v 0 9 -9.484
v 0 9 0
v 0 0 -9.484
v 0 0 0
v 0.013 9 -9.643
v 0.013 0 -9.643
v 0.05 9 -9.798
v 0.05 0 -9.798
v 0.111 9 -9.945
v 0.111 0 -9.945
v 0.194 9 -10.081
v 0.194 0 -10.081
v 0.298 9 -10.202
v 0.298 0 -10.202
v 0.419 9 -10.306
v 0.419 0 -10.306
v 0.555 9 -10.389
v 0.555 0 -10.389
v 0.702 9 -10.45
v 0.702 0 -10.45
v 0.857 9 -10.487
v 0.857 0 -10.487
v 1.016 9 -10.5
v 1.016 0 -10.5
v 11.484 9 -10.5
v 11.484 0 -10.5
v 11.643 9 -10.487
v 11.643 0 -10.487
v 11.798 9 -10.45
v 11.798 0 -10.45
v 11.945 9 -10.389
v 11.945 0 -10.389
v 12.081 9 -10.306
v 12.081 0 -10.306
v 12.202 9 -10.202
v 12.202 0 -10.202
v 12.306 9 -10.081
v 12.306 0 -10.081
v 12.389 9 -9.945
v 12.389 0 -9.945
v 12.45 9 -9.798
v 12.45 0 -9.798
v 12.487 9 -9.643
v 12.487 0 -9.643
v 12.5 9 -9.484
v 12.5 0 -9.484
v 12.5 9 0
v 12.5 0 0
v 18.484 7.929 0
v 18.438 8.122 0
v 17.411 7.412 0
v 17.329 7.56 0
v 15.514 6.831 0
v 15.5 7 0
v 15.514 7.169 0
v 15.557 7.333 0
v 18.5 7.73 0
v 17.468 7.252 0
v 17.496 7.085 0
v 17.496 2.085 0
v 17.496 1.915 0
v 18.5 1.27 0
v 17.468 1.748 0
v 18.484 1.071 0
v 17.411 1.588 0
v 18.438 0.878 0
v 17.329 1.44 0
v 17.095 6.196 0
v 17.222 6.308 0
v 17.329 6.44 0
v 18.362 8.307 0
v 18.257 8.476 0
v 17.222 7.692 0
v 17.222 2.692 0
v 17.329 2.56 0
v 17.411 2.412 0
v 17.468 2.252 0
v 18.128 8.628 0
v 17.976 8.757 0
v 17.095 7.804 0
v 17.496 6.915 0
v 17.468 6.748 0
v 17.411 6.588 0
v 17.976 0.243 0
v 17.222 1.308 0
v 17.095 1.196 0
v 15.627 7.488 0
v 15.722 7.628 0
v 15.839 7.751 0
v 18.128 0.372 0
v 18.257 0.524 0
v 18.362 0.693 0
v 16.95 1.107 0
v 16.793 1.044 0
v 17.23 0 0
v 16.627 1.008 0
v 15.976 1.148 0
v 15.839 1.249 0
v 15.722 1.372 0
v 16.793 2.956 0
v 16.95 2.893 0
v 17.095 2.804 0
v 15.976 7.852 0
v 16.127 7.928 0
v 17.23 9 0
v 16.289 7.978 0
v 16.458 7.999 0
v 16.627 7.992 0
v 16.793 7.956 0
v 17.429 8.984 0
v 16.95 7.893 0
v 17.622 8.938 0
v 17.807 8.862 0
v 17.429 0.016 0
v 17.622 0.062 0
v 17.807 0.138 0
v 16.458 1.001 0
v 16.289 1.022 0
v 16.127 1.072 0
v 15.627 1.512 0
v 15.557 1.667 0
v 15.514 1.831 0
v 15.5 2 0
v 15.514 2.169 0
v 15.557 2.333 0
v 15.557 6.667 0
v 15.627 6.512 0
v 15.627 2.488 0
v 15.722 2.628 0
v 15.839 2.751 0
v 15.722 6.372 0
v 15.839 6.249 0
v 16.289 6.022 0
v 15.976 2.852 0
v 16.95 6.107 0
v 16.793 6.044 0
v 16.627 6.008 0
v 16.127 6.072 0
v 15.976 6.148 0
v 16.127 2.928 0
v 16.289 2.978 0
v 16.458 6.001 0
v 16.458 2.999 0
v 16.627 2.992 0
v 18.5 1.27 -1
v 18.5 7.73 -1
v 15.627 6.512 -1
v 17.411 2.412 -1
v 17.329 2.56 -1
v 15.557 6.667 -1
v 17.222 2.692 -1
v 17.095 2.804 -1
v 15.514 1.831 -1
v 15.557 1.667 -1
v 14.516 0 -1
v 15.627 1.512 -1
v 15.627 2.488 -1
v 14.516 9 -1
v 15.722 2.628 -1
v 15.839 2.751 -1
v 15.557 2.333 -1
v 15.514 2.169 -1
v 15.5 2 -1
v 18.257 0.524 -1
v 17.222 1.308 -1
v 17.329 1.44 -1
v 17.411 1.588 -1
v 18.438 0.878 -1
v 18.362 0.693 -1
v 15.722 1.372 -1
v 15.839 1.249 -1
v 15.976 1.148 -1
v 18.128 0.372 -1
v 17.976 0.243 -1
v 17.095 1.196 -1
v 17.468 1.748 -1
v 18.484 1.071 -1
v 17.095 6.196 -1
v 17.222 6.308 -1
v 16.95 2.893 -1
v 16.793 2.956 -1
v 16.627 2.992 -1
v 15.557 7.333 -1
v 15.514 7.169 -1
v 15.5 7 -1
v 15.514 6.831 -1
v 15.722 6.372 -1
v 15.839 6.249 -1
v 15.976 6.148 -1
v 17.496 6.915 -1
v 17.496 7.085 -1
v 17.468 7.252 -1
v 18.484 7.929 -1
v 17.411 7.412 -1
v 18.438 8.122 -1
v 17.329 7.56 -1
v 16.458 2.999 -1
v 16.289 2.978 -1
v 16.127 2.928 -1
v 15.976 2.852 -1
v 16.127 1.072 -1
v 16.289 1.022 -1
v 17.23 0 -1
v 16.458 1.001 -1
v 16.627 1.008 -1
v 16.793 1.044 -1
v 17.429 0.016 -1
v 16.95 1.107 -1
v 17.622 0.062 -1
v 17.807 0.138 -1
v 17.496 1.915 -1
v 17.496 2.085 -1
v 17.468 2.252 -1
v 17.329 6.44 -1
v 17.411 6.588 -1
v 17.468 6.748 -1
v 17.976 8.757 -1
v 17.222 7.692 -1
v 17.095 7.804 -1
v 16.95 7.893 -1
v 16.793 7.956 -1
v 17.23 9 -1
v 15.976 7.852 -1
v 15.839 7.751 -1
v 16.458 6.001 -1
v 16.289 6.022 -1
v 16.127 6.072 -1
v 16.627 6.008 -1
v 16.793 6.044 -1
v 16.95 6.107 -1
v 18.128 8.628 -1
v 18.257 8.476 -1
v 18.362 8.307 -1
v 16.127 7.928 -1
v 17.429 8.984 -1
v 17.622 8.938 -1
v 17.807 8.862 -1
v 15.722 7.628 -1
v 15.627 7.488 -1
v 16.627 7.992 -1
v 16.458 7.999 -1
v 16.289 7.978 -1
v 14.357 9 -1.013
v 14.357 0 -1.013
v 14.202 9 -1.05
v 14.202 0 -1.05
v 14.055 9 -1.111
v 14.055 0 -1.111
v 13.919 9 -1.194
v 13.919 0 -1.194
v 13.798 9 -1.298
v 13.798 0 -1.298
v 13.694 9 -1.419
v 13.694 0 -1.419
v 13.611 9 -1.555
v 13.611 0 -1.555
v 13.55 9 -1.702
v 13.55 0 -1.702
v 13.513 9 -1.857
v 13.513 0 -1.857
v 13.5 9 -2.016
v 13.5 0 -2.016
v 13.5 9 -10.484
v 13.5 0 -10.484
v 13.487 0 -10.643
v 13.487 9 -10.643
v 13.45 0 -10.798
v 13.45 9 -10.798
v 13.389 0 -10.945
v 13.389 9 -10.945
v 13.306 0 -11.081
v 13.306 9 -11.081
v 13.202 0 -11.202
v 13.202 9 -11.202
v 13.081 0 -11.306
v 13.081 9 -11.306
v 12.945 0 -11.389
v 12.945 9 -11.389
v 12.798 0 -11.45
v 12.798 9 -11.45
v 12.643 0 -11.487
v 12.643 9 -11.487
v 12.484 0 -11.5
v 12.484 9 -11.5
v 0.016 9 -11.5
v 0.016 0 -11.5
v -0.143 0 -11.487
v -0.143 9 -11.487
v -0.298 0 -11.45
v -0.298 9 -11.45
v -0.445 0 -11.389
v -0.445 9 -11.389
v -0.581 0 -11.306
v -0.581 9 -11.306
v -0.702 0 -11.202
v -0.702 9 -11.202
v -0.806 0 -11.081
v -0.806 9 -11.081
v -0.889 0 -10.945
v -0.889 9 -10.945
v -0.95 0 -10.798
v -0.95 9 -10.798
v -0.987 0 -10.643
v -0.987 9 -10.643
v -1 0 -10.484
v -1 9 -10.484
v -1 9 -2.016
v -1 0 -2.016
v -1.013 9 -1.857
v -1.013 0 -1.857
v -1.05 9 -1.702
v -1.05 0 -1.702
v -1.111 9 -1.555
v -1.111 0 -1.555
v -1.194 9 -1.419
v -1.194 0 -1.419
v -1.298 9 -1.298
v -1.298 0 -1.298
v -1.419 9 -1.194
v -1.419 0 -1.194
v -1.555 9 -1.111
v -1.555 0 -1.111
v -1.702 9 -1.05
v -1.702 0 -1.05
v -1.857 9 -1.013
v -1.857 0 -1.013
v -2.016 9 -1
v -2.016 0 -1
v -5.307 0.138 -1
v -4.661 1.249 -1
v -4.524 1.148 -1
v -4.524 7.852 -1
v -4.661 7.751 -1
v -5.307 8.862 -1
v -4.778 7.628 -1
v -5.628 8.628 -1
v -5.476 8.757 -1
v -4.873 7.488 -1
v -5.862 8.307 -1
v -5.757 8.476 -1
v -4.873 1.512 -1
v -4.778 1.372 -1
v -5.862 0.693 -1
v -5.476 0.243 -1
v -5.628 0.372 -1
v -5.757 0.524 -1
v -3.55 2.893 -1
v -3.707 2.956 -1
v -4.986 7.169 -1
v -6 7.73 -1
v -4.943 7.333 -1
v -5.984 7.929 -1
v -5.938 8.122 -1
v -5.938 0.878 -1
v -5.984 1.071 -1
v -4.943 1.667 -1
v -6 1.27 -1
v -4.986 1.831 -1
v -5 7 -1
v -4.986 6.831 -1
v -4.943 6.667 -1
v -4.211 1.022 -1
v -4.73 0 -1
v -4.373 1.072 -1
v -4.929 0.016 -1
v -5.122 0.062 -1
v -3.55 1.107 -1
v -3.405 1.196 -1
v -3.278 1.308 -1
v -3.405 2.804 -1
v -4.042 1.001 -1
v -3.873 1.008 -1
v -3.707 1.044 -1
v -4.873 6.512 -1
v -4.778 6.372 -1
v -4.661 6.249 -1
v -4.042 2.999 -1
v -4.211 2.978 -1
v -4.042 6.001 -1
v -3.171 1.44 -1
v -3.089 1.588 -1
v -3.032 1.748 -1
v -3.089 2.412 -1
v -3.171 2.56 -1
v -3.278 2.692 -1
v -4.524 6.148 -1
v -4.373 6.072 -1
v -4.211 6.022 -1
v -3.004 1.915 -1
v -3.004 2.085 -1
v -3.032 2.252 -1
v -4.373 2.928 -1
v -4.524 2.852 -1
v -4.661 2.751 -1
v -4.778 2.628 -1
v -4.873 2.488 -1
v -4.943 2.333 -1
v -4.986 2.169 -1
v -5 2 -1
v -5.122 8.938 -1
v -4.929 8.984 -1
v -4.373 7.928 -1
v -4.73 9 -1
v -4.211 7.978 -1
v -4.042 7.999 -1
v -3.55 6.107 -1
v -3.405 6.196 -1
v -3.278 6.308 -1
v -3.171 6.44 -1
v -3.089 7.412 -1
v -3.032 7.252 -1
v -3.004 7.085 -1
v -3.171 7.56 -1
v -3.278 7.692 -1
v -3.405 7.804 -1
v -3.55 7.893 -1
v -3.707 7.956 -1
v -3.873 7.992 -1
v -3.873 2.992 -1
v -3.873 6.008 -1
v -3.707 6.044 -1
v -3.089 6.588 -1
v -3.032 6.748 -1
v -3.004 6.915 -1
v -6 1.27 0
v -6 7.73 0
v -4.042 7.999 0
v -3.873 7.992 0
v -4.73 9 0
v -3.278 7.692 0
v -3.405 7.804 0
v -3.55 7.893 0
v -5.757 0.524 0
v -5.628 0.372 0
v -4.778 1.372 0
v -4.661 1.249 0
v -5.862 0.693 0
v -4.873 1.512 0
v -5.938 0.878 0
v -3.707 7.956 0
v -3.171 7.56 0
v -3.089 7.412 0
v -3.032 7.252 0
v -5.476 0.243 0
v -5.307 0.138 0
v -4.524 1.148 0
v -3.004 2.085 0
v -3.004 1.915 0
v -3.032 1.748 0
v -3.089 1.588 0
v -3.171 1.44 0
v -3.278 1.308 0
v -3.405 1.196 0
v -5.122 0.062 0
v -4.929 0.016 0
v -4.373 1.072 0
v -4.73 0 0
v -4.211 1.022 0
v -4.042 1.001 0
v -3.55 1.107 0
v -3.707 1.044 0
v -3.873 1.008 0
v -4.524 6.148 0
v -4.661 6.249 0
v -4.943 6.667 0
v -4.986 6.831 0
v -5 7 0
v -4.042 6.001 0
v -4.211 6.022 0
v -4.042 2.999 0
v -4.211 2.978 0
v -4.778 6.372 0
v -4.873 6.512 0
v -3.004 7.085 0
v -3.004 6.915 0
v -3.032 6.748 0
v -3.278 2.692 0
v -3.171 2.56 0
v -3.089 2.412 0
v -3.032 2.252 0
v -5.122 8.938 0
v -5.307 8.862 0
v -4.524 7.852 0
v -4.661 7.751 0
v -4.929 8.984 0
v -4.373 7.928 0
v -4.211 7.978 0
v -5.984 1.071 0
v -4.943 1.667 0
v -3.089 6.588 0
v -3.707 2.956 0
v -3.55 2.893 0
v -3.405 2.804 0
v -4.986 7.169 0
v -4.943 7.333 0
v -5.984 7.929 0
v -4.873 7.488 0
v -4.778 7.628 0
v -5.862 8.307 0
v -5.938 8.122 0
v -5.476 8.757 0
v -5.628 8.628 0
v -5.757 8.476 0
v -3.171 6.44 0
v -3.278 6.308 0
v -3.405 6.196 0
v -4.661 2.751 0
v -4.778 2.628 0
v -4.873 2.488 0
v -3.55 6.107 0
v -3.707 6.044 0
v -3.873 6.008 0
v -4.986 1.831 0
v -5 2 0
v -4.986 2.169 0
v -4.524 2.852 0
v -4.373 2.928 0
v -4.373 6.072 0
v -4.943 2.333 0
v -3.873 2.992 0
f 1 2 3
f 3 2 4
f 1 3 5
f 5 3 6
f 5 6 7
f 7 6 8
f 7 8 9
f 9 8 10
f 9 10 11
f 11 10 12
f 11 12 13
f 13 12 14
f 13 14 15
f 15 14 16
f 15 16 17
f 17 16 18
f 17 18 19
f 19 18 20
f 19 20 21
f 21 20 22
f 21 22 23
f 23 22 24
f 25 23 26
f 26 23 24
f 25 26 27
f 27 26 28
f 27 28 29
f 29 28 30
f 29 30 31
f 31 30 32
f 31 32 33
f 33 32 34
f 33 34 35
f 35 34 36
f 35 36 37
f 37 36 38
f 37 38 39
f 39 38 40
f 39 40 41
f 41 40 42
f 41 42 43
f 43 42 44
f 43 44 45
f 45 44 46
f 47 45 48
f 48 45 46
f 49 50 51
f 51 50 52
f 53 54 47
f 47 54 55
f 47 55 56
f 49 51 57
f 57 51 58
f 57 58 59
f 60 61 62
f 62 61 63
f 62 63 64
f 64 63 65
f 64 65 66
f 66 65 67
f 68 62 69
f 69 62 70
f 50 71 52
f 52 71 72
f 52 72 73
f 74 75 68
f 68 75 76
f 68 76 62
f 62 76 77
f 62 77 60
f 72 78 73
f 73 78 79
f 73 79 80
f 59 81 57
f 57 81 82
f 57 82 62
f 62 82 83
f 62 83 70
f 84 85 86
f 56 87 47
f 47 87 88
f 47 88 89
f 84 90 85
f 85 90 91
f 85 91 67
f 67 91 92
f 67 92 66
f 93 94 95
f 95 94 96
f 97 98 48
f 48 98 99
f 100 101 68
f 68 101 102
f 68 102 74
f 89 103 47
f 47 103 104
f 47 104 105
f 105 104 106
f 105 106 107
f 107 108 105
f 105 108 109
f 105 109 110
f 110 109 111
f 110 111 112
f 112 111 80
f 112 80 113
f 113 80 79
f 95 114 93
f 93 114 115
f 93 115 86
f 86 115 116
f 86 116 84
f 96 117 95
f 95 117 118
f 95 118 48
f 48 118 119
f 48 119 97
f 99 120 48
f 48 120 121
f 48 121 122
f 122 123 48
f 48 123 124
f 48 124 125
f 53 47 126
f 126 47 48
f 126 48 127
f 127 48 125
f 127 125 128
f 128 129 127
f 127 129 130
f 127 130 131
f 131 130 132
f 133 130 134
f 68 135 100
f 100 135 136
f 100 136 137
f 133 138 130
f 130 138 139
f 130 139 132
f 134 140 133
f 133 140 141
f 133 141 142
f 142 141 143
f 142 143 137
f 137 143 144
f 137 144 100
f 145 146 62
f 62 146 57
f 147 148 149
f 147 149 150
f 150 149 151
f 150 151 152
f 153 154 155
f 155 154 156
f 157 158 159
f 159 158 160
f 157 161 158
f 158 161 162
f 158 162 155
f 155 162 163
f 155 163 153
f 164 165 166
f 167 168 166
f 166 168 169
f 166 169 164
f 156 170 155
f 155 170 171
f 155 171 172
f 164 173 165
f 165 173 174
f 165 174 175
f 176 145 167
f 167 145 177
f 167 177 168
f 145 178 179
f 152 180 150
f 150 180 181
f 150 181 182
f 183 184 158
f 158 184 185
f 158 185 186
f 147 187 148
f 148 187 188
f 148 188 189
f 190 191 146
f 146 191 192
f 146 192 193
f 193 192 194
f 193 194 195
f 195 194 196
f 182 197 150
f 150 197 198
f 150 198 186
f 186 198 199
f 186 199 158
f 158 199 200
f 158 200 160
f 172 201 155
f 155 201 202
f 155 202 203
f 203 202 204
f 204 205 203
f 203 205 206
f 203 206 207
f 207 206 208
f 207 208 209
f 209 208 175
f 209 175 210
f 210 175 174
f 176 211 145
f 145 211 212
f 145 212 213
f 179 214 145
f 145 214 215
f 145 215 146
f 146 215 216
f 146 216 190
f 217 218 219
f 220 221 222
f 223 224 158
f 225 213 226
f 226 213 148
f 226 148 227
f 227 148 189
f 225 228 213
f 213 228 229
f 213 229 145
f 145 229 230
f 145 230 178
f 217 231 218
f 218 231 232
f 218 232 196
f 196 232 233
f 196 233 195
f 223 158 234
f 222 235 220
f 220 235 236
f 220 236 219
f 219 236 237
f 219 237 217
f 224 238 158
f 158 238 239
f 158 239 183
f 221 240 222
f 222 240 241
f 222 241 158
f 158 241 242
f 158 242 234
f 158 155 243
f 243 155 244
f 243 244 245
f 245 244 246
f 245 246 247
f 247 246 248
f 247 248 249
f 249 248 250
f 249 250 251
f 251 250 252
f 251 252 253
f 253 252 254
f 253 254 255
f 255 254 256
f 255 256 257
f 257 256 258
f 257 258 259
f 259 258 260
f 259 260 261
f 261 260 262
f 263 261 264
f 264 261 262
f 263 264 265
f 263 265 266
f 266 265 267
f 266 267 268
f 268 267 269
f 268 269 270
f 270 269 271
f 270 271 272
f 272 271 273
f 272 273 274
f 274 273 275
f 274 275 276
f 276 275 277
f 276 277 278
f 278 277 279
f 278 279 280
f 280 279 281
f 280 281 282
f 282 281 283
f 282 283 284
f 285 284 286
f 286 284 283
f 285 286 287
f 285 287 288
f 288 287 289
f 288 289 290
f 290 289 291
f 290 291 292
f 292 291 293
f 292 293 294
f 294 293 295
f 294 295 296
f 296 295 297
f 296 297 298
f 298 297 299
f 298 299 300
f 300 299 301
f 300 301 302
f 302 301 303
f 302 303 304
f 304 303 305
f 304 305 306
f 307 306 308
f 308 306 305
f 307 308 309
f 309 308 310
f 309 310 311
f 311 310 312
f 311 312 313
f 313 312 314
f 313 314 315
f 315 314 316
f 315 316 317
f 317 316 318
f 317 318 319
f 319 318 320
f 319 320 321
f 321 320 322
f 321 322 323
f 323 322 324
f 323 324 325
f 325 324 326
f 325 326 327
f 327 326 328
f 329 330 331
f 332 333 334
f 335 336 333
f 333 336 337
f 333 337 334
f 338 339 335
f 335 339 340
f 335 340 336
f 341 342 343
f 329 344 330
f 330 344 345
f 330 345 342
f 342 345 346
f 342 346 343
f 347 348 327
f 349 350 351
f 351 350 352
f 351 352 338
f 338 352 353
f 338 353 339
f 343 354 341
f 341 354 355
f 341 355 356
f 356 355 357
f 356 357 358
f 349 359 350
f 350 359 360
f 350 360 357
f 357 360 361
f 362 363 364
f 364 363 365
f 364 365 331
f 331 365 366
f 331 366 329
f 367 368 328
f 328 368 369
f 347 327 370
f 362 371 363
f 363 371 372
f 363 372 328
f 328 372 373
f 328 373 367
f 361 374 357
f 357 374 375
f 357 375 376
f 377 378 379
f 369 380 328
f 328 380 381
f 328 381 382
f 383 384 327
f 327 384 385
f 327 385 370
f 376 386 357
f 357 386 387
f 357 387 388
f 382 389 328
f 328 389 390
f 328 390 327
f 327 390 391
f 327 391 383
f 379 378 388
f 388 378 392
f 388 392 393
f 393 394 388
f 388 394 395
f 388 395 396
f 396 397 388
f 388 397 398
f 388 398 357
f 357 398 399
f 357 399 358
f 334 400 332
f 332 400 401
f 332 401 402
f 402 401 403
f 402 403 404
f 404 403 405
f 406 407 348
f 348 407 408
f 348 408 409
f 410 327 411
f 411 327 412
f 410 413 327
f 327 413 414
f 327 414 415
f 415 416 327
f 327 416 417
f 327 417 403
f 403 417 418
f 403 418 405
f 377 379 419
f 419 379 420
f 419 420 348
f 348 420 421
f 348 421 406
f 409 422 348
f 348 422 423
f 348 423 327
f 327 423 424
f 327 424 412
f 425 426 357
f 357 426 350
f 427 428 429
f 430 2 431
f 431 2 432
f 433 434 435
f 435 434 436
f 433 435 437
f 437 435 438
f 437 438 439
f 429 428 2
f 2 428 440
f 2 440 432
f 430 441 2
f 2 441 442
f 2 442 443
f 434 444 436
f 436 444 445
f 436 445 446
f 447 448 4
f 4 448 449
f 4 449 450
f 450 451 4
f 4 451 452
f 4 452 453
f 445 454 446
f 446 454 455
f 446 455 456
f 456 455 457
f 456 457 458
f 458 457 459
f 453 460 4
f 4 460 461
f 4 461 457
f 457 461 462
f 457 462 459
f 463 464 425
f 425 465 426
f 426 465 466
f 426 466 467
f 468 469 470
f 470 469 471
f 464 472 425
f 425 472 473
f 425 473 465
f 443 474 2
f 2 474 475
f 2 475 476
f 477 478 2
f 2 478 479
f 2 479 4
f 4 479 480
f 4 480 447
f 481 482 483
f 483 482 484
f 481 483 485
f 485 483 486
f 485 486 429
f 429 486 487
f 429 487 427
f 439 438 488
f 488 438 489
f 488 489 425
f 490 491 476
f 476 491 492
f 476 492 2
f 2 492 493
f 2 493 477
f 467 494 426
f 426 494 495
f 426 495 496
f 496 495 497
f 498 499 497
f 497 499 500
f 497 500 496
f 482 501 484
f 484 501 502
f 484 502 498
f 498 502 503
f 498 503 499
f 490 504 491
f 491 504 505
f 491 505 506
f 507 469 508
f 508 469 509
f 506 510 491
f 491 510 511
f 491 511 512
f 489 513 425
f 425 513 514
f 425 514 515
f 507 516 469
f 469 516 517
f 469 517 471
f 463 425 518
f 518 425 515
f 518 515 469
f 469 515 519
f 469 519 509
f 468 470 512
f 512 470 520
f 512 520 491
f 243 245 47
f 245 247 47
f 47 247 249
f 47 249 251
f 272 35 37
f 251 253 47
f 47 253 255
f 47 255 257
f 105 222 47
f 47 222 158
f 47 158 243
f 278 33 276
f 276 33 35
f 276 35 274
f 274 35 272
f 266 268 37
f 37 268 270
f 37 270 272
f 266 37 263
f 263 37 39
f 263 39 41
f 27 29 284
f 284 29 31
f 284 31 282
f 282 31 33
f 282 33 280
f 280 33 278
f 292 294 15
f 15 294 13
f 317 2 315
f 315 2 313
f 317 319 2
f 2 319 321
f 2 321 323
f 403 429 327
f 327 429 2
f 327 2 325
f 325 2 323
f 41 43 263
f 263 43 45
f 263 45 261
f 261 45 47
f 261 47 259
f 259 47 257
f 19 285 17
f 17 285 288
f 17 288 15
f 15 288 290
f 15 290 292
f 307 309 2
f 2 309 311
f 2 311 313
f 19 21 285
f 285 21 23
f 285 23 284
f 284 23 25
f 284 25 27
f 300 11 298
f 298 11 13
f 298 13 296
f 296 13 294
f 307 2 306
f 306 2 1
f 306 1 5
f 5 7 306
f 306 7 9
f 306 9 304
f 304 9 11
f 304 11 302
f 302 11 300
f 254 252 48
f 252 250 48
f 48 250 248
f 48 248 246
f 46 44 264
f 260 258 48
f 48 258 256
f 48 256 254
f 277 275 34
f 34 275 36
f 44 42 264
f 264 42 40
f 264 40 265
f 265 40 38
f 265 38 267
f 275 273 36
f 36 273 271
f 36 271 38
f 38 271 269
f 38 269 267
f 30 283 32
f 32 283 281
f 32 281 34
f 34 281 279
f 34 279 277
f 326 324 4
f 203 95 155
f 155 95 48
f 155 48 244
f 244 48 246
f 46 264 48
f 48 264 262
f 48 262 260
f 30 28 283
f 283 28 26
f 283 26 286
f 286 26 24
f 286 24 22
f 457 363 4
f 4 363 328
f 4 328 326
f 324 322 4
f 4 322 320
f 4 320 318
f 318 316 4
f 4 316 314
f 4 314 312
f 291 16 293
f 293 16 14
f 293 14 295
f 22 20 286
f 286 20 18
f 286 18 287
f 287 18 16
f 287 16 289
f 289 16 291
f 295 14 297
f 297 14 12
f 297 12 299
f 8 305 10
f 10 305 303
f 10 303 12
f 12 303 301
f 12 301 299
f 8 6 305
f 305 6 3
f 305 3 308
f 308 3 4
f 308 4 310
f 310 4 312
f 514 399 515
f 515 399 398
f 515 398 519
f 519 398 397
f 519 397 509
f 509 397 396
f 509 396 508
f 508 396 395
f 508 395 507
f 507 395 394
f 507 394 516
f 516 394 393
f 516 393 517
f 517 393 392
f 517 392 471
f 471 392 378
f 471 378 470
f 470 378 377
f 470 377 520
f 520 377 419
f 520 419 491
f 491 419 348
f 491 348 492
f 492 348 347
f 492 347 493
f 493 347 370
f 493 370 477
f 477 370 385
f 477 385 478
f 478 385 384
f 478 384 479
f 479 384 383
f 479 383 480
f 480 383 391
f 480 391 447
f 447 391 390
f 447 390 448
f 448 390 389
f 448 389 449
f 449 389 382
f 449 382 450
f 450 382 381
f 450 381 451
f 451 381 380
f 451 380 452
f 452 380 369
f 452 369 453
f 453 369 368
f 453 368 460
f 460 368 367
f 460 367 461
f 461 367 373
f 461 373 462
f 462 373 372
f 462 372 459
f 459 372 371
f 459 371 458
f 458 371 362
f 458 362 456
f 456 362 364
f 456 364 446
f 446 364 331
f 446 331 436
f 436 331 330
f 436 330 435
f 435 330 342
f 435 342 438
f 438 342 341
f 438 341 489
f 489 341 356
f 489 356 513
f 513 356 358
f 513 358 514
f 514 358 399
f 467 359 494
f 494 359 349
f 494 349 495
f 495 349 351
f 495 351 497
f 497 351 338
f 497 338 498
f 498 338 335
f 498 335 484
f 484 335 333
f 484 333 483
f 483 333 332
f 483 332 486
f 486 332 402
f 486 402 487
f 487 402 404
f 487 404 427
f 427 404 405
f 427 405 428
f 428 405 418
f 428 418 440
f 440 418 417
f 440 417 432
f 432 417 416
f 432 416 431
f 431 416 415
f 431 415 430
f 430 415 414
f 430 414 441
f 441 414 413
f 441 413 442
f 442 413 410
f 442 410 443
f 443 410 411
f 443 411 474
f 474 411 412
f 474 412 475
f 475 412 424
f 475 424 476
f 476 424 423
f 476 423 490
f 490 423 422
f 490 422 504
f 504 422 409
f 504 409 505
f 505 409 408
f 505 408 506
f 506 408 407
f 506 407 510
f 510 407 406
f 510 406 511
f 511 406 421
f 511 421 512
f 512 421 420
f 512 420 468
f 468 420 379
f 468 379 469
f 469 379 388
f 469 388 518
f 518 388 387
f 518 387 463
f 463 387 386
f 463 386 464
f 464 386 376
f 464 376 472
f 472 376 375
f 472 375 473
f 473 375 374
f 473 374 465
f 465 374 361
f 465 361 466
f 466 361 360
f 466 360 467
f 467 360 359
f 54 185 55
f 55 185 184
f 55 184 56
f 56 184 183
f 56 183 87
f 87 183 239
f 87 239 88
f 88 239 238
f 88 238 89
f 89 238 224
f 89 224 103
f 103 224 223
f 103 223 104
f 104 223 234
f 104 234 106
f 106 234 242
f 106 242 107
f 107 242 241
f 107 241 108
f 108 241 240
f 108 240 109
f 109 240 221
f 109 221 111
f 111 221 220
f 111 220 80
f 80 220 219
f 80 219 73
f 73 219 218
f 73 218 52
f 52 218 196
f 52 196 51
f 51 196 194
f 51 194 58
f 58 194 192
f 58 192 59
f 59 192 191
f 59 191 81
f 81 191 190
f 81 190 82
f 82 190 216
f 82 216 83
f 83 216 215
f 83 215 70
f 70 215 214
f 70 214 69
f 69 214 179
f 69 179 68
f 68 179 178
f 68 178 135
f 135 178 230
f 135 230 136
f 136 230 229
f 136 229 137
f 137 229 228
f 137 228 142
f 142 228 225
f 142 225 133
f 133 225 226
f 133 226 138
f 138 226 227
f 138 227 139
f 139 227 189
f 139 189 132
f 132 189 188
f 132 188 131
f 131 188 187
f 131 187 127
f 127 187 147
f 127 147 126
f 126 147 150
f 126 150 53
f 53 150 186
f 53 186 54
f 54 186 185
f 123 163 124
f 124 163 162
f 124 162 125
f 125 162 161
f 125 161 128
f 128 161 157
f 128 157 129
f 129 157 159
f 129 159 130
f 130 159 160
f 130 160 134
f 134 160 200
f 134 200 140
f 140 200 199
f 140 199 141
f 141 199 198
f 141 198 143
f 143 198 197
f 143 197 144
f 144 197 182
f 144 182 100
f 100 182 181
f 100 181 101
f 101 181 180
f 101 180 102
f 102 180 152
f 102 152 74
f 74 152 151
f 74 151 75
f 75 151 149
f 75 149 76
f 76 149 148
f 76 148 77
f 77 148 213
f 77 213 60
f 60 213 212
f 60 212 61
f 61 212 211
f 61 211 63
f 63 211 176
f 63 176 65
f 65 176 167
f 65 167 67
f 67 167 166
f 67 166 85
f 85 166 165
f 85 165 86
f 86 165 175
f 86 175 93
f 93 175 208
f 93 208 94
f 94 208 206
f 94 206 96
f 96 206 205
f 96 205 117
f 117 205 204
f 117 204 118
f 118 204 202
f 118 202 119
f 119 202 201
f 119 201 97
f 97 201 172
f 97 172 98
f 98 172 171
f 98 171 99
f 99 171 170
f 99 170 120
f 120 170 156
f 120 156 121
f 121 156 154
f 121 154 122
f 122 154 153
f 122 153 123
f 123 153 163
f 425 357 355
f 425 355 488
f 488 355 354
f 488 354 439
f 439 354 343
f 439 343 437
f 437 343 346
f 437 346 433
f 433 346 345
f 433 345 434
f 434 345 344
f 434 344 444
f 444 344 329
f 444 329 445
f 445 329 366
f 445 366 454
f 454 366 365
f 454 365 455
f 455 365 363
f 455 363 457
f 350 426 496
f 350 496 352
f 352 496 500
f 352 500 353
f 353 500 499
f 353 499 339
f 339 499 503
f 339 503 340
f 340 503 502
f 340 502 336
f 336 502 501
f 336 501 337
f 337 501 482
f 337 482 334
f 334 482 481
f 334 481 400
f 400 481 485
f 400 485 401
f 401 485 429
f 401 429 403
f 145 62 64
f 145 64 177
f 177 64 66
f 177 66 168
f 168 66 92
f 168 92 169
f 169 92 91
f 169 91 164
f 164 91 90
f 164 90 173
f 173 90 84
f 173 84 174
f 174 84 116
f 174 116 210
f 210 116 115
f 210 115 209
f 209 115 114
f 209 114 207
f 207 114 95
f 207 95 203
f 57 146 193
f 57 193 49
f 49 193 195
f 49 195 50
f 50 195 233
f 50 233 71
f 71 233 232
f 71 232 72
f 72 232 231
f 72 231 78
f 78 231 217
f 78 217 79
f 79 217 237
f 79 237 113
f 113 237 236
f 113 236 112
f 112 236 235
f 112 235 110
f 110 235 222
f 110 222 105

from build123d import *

# Parameters (mm, degrees)
BOSS_EXTRUDE1_DEPTH = 9
SKETCH2_R           = 1
CUT_EXTRUDE1_DEPTH  = 2
FILLET1_R           = 1.27


with BuildPart() as part:
    # Sketch1 → Boss-Extrude1 (new body)
    with BuildSketch(Plane(origin=(0, 0, 0), x_dir=(1, 0, 0), z_dir=(0, 1, 0))):
        with BuildLine():
            Line((12.5, 0), (13.5, 0))
            Line((13.5, 0), (18.5, 0))
            Line((18.5, 0), (18.5, 1))
            Line((18.5, 1), (14.516, 1))
            ThreePointArc((14.516, 1), (13.79757951, 1.29757951), (13.5, 2.016))
            Line((13.5, 2.016), (13.5, 10.484))
            ThreePointArc((13.5, 10.484), (13.20242049, 11.20242049), (12.484, 11.5))
            Line((12.484, 11.5), (0.016, 11.5))
            ThreePointArc((0.016, 11.5), (-0.70242049, 11.20242049), (-1, 10.484))
            Line((-1, 10.484), (-1, 2.016))
            ThreePointArc((-1, 2.016), (-1.29757951, 1.29757951), (-2.016, 1))
            Line((-2.016, 1), (-6, 1))
            Line((-6, 1), (-6, 0))
            Line((-6, 0), (-0.999998, 0))
            Line((-0.999998, 0), (0, 0))
            Line((0, 0), (0, 9.484))
            ThreePointArc((0, 9.484), (0.29757951, 10.20242049), (1.016, 10.5))
            Line((1.016, 10.5), (11.484, 10.5))
            ThreePointArc((11.484, 10.5), (12.20242049, 10.20242049), (12.5, 9.484))
            Line((12.5, 9.484), (12.5, 0))
        make_face()
    extrude(amount=BOSS_EXTRUDE1_DEPTH)

    # Sketch2 → Cut-Extrude1 (cut, through all)
    with BuildSketch(Plane(origin=(0, 0, -1), x_dir=(-1, 0, 0), z_dir=(0, 0, -1))):
        with Locations((4, 2)):
            Circle(SKETCH2_R)
        with Locations((4, 7)):
            Circle(SKETCH2_R)
        with Locations((-16.5, 2)):
            Circle(SKETCH2_R)
        with Locations((-16.5, 7)):
            Circle(SKETCH2_R)
    extrude(amount=-CUT_EXTRUDE1_DEPTH, mode=Mode.SUBTRACT)

    # Fillet1
    fillet1_edges = [part.edges().sort_by_distance(p)[0] for p in [
        (-6, 0, -0.5),
        (18.5, 0, -0.5),
        (18.5, 9, -0.5),
        (-6, 9, -0.5),
    ]]
    fillet(fillet1_edges, radius=FILLET1_R)


solid = part.part
